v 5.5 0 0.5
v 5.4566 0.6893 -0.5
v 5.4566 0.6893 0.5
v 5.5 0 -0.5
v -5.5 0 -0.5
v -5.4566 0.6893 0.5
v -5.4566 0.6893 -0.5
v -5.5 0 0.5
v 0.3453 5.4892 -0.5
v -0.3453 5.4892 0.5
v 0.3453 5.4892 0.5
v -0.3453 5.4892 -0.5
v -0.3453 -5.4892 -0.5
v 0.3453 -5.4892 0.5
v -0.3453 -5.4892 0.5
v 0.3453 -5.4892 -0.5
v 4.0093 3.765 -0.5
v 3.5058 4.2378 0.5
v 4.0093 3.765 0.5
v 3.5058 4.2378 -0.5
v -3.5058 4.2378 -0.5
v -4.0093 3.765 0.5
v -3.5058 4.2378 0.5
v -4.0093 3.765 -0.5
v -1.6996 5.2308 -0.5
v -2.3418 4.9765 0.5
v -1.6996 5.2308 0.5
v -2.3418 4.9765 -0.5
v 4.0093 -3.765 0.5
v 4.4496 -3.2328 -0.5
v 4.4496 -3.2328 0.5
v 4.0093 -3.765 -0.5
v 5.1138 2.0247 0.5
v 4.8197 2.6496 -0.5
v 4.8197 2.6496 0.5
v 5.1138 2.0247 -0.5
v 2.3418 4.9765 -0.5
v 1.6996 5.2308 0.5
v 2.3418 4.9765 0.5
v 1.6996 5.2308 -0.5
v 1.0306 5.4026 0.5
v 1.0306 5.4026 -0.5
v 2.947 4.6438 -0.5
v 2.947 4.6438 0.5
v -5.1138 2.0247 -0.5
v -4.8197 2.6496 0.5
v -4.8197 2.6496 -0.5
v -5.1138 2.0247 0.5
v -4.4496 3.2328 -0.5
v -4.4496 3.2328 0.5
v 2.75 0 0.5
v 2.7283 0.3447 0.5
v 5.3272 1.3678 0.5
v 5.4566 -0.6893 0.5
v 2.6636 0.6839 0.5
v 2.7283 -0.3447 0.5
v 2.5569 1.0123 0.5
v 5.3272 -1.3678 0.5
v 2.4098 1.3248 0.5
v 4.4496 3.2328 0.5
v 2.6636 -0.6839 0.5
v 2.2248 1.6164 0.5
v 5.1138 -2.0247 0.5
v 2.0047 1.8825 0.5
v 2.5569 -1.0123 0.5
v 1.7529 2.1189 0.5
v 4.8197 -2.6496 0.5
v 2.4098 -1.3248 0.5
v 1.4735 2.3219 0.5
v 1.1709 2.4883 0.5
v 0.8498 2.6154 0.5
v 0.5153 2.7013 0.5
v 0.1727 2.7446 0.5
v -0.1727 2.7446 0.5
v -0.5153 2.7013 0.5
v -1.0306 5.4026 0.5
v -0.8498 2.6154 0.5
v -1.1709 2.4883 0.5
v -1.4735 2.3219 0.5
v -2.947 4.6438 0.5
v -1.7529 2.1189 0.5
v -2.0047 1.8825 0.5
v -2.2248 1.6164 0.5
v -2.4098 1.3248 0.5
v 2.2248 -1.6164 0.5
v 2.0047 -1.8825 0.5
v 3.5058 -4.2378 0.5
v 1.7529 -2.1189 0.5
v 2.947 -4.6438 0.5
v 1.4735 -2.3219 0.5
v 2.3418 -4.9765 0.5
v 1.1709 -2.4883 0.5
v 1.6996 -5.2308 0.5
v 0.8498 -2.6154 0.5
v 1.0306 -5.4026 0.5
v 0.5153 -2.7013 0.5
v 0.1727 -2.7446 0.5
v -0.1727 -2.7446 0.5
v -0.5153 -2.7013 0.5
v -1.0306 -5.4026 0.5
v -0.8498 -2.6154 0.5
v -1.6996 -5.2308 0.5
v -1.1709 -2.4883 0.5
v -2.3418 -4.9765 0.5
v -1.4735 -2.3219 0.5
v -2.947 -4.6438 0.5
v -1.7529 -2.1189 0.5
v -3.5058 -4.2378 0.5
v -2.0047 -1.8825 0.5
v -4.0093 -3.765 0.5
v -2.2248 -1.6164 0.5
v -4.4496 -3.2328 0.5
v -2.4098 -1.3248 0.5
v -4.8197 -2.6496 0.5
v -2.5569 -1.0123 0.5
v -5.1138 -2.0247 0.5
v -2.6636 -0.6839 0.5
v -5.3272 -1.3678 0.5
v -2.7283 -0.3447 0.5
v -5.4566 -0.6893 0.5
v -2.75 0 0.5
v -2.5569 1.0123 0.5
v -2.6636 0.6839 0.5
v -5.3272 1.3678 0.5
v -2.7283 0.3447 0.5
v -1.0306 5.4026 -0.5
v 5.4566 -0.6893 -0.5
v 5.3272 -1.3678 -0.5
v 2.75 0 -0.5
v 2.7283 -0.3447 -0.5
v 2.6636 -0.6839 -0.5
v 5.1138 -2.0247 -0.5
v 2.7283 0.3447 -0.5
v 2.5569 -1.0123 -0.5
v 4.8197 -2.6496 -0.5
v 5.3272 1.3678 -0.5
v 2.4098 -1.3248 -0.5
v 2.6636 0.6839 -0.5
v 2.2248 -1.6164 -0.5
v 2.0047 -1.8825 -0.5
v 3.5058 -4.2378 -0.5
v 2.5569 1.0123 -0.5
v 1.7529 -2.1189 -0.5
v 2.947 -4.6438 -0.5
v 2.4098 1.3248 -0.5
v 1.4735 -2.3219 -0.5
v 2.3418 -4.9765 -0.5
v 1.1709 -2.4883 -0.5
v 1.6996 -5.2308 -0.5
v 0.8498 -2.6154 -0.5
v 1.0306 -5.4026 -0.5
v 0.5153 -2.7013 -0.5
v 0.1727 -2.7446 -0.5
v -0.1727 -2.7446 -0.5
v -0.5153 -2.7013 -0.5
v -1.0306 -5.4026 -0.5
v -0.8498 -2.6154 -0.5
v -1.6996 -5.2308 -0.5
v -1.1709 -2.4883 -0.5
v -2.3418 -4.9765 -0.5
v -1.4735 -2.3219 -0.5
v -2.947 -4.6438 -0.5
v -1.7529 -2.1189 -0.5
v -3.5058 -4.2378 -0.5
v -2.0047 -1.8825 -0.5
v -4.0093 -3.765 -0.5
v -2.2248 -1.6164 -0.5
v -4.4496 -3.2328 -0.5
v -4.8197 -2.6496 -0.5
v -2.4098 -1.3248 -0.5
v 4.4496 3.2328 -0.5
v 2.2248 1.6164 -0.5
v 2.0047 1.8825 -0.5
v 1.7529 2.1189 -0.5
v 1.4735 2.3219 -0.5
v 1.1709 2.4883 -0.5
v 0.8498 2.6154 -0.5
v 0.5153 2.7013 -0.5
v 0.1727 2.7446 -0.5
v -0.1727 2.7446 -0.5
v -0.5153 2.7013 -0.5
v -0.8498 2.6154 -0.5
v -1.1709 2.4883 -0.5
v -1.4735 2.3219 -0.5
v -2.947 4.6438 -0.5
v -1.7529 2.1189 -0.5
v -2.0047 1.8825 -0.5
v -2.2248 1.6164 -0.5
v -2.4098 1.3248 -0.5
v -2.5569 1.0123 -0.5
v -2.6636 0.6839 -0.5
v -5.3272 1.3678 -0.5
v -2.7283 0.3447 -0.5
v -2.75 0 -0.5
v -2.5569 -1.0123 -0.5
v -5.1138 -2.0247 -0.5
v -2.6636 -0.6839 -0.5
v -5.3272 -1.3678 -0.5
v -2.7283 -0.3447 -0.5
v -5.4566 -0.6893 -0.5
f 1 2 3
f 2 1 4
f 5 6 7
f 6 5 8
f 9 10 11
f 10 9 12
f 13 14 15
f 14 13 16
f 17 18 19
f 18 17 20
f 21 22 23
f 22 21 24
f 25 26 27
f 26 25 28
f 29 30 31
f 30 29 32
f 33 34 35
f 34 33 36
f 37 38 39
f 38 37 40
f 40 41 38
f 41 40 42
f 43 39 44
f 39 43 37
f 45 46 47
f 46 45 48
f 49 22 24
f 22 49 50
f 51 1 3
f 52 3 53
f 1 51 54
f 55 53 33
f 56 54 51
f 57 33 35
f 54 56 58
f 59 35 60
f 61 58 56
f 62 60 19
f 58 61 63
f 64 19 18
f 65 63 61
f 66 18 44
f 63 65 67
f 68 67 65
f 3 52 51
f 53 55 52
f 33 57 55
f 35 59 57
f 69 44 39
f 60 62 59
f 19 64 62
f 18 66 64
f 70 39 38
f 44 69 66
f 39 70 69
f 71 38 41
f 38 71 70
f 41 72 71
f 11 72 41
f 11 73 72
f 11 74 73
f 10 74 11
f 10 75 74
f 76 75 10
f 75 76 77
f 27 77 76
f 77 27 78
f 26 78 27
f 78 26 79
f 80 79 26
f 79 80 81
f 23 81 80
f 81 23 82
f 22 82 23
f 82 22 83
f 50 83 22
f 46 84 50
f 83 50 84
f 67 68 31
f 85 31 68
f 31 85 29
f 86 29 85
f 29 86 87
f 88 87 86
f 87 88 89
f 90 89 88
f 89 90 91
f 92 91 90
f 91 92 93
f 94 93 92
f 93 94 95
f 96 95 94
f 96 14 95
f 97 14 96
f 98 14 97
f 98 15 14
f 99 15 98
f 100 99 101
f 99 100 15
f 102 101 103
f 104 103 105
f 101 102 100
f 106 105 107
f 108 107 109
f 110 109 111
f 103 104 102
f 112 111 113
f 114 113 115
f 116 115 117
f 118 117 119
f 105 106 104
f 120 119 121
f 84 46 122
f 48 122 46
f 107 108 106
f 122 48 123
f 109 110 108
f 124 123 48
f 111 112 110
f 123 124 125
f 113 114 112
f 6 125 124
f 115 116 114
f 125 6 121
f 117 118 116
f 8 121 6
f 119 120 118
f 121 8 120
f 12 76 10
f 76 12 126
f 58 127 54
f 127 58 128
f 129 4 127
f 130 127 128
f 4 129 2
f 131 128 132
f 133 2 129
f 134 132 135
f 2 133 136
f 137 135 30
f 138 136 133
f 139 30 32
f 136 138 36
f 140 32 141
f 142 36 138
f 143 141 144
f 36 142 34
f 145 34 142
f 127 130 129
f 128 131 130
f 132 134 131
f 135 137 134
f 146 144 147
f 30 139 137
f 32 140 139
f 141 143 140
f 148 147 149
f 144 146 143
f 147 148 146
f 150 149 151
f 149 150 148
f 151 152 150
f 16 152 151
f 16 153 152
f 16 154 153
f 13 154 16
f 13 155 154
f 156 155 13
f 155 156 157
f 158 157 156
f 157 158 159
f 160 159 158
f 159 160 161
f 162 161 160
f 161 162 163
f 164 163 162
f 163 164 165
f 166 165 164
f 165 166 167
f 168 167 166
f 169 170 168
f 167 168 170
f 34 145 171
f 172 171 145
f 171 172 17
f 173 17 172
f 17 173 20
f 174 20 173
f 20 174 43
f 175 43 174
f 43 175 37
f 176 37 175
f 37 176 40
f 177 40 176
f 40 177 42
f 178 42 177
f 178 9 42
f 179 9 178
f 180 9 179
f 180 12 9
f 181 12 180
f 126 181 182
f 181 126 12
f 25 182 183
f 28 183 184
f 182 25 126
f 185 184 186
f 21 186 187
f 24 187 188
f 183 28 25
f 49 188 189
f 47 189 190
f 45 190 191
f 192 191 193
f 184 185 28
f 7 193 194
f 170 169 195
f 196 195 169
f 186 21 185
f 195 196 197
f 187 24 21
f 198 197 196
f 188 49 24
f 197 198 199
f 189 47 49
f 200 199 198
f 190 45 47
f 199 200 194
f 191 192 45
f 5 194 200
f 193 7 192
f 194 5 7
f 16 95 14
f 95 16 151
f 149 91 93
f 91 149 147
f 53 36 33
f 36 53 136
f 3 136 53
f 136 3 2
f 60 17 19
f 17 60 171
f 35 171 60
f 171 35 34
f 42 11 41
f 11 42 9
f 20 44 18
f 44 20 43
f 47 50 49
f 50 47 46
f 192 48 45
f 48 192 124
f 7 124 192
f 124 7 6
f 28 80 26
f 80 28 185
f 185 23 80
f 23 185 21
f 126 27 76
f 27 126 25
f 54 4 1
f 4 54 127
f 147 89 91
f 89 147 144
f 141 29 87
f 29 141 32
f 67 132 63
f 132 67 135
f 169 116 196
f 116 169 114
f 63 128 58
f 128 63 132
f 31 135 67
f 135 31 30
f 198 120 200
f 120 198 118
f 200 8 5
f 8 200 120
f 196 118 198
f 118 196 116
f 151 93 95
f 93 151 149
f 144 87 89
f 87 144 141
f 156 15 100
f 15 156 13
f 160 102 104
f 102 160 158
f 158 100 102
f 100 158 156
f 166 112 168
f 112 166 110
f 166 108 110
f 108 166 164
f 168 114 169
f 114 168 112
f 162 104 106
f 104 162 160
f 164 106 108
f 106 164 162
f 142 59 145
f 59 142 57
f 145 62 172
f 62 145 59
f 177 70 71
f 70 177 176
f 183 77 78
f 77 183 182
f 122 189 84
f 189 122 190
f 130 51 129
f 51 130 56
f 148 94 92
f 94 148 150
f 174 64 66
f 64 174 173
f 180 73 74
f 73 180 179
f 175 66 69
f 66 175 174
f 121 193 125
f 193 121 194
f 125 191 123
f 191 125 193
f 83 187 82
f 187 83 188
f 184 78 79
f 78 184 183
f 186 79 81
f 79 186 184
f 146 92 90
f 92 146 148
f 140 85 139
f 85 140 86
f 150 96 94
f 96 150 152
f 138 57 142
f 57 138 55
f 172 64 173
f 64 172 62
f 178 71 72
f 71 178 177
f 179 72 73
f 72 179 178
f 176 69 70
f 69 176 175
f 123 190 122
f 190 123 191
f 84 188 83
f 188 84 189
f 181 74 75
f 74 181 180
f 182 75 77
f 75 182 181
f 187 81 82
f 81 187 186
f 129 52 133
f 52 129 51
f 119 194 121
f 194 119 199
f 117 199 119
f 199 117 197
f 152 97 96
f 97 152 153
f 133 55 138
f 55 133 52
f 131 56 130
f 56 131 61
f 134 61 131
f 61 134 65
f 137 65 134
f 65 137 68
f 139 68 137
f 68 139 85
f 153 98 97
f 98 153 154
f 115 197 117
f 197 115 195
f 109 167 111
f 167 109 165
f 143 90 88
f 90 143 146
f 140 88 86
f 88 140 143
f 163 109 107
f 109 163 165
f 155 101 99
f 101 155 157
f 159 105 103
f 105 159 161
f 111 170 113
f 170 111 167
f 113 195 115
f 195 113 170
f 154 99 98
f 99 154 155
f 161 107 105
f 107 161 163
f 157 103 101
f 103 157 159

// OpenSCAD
$fn = 50;


difference() {
	union() {
		translate(v = [0, 0, -0.5000000000]) {
			cylinder(h = 1, r = 5.5000000000);
		}
	}
	union() {
		translate(v = [0, 0, -100.0000000000]) {
			cylinder(h = 200, r = 2.7500000000);
		}
	}
}
